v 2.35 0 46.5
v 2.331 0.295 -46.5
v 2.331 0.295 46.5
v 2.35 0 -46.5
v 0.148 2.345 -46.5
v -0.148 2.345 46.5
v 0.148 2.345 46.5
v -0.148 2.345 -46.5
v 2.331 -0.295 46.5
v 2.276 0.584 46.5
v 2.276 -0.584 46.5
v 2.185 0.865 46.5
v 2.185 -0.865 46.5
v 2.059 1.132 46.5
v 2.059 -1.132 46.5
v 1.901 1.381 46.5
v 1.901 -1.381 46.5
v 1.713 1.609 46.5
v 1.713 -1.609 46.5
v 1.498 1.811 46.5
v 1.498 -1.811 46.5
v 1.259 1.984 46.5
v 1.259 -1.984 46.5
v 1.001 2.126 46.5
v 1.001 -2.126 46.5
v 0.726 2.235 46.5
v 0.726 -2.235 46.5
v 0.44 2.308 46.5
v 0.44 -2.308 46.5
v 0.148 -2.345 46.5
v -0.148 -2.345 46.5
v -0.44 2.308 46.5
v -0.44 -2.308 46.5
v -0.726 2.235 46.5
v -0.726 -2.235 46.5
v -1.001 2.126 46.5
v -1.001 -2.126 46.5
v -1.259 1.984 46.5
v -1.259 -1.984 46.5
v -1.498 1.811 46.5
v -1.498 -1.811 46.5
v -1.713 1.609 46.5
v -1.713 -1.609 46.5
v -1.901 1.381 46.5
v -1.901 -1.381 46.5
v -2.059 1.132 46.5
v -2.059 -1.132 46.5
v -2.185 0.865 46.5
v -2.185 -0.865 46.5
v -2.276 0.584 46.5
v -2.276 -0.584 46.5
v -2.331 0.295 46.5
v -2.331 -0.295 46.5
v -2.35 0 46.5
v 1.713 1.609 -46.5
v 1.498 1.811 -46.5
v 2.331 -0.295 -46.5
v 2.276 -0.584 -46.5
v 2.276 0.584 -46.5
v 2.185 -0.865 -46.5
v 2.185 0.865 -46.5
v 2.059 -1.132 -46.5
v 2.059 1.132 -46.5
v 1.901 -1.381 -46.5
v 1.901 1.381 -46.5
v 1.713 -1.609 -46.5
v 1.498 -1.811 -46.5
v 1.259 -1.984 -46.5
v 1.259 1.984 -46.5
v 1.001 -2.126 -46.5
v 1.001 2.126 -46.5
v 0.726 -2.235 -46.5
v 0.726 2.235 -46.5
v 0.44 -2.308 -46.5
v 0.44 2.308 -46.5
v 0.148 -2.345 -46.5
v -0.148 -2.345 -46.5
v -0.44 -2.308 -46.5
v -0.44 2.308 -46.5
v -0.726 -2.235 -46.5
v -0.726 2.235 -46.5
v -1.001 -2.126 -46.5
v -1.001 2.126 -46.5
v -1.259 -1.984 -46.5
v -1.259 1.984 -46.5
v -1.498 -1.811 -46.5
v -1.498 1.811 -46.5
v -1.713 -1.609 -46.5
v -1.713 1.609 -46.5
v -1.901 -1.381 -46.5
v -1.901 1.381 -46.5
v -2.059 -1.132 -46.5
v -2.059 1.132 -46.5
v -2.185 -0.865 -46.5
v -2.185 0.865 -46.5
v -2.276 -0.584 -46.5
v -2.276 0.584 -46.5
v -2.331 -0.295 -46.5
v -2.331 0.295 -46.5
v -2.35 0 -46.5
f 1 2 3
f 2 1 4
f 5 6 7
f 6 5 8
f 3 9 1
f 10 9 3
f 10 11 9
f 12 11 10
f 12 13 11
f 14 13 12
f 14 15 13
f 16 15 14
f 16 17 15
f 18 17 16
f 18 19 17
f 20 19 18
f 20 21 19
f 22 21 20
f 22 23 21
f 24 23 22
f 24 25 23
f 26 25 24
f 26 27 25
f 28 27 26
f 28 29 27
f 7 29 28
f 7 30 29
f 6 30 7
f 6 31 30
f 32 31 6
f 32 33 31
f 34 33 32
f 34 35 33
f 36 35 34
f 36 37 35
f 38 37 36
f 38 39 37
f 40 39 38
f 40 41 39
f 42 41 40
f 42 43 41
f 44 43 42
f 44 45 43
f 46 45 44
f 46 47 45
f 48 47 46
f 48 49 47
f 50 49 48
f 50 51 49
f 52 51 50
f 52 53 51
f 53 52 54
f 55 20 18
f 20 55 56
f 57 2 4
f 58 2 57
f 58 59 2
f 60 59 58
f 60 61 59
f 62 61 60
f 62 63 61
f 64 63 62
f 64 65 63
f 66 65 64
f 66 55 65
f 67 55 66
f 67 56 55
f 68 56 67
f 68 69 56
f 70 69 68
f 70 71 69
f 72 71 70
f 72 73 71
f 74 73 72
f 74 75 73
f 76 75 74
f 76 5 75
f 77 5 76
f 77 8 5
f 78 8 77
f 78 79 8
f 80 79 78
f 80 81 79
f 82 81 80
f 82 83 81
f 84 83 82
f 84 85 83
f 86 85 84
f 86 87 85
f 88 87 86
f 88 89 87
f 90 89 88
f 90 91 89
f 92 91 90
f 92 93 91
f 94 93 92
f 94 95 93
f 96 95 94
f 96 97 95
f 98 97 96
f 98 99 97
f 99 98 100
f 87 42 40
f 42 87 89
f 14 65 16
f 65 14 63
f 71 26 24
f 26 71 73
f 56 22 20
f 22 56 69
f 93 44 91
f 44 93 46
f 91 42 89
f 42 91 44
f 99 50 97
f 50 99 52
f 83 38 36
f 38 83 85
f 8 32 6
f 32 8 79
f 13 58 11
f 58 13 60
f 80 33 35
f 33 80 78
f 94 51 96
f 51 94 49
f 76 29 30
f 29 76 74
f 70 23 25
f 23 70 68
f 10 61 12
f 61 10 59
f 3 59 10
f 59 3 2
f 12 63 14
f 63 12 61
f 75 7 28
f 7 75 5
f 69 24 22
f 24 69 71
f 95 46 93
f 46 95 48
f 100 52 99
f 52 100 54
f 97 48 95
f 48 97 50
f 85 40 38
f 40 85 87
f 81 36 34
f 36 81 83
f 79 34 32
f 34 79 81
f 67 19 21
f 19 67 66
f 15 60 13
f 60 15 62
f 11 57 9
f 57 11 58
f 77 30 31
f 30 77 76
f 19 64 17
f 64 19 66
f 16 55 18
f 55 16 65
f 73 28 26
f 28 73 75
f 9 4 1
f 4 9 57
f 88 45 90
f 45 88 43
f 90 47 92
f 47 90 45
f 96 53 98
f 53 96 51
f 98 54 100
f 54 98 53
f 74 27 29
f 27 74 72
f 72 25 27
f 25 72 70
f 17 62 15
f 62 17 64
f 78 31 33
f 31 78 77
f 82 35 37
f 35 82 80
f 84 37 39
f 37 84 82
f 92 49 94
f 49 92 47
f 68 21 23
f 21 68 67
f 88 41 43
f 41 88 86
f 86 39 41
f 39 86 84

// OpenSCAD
$fn = 50;


difference() {
	union() {
		translate(v = [0, 0, -46.5000000000]) {
			cylinder(h = 93, r = 2.3500000000);
		}
	}
	union() {
		translate(v = [0, 0, -100.0000000000]) {
			cylinder(h = 200, r = 0);
		}
	}
}
